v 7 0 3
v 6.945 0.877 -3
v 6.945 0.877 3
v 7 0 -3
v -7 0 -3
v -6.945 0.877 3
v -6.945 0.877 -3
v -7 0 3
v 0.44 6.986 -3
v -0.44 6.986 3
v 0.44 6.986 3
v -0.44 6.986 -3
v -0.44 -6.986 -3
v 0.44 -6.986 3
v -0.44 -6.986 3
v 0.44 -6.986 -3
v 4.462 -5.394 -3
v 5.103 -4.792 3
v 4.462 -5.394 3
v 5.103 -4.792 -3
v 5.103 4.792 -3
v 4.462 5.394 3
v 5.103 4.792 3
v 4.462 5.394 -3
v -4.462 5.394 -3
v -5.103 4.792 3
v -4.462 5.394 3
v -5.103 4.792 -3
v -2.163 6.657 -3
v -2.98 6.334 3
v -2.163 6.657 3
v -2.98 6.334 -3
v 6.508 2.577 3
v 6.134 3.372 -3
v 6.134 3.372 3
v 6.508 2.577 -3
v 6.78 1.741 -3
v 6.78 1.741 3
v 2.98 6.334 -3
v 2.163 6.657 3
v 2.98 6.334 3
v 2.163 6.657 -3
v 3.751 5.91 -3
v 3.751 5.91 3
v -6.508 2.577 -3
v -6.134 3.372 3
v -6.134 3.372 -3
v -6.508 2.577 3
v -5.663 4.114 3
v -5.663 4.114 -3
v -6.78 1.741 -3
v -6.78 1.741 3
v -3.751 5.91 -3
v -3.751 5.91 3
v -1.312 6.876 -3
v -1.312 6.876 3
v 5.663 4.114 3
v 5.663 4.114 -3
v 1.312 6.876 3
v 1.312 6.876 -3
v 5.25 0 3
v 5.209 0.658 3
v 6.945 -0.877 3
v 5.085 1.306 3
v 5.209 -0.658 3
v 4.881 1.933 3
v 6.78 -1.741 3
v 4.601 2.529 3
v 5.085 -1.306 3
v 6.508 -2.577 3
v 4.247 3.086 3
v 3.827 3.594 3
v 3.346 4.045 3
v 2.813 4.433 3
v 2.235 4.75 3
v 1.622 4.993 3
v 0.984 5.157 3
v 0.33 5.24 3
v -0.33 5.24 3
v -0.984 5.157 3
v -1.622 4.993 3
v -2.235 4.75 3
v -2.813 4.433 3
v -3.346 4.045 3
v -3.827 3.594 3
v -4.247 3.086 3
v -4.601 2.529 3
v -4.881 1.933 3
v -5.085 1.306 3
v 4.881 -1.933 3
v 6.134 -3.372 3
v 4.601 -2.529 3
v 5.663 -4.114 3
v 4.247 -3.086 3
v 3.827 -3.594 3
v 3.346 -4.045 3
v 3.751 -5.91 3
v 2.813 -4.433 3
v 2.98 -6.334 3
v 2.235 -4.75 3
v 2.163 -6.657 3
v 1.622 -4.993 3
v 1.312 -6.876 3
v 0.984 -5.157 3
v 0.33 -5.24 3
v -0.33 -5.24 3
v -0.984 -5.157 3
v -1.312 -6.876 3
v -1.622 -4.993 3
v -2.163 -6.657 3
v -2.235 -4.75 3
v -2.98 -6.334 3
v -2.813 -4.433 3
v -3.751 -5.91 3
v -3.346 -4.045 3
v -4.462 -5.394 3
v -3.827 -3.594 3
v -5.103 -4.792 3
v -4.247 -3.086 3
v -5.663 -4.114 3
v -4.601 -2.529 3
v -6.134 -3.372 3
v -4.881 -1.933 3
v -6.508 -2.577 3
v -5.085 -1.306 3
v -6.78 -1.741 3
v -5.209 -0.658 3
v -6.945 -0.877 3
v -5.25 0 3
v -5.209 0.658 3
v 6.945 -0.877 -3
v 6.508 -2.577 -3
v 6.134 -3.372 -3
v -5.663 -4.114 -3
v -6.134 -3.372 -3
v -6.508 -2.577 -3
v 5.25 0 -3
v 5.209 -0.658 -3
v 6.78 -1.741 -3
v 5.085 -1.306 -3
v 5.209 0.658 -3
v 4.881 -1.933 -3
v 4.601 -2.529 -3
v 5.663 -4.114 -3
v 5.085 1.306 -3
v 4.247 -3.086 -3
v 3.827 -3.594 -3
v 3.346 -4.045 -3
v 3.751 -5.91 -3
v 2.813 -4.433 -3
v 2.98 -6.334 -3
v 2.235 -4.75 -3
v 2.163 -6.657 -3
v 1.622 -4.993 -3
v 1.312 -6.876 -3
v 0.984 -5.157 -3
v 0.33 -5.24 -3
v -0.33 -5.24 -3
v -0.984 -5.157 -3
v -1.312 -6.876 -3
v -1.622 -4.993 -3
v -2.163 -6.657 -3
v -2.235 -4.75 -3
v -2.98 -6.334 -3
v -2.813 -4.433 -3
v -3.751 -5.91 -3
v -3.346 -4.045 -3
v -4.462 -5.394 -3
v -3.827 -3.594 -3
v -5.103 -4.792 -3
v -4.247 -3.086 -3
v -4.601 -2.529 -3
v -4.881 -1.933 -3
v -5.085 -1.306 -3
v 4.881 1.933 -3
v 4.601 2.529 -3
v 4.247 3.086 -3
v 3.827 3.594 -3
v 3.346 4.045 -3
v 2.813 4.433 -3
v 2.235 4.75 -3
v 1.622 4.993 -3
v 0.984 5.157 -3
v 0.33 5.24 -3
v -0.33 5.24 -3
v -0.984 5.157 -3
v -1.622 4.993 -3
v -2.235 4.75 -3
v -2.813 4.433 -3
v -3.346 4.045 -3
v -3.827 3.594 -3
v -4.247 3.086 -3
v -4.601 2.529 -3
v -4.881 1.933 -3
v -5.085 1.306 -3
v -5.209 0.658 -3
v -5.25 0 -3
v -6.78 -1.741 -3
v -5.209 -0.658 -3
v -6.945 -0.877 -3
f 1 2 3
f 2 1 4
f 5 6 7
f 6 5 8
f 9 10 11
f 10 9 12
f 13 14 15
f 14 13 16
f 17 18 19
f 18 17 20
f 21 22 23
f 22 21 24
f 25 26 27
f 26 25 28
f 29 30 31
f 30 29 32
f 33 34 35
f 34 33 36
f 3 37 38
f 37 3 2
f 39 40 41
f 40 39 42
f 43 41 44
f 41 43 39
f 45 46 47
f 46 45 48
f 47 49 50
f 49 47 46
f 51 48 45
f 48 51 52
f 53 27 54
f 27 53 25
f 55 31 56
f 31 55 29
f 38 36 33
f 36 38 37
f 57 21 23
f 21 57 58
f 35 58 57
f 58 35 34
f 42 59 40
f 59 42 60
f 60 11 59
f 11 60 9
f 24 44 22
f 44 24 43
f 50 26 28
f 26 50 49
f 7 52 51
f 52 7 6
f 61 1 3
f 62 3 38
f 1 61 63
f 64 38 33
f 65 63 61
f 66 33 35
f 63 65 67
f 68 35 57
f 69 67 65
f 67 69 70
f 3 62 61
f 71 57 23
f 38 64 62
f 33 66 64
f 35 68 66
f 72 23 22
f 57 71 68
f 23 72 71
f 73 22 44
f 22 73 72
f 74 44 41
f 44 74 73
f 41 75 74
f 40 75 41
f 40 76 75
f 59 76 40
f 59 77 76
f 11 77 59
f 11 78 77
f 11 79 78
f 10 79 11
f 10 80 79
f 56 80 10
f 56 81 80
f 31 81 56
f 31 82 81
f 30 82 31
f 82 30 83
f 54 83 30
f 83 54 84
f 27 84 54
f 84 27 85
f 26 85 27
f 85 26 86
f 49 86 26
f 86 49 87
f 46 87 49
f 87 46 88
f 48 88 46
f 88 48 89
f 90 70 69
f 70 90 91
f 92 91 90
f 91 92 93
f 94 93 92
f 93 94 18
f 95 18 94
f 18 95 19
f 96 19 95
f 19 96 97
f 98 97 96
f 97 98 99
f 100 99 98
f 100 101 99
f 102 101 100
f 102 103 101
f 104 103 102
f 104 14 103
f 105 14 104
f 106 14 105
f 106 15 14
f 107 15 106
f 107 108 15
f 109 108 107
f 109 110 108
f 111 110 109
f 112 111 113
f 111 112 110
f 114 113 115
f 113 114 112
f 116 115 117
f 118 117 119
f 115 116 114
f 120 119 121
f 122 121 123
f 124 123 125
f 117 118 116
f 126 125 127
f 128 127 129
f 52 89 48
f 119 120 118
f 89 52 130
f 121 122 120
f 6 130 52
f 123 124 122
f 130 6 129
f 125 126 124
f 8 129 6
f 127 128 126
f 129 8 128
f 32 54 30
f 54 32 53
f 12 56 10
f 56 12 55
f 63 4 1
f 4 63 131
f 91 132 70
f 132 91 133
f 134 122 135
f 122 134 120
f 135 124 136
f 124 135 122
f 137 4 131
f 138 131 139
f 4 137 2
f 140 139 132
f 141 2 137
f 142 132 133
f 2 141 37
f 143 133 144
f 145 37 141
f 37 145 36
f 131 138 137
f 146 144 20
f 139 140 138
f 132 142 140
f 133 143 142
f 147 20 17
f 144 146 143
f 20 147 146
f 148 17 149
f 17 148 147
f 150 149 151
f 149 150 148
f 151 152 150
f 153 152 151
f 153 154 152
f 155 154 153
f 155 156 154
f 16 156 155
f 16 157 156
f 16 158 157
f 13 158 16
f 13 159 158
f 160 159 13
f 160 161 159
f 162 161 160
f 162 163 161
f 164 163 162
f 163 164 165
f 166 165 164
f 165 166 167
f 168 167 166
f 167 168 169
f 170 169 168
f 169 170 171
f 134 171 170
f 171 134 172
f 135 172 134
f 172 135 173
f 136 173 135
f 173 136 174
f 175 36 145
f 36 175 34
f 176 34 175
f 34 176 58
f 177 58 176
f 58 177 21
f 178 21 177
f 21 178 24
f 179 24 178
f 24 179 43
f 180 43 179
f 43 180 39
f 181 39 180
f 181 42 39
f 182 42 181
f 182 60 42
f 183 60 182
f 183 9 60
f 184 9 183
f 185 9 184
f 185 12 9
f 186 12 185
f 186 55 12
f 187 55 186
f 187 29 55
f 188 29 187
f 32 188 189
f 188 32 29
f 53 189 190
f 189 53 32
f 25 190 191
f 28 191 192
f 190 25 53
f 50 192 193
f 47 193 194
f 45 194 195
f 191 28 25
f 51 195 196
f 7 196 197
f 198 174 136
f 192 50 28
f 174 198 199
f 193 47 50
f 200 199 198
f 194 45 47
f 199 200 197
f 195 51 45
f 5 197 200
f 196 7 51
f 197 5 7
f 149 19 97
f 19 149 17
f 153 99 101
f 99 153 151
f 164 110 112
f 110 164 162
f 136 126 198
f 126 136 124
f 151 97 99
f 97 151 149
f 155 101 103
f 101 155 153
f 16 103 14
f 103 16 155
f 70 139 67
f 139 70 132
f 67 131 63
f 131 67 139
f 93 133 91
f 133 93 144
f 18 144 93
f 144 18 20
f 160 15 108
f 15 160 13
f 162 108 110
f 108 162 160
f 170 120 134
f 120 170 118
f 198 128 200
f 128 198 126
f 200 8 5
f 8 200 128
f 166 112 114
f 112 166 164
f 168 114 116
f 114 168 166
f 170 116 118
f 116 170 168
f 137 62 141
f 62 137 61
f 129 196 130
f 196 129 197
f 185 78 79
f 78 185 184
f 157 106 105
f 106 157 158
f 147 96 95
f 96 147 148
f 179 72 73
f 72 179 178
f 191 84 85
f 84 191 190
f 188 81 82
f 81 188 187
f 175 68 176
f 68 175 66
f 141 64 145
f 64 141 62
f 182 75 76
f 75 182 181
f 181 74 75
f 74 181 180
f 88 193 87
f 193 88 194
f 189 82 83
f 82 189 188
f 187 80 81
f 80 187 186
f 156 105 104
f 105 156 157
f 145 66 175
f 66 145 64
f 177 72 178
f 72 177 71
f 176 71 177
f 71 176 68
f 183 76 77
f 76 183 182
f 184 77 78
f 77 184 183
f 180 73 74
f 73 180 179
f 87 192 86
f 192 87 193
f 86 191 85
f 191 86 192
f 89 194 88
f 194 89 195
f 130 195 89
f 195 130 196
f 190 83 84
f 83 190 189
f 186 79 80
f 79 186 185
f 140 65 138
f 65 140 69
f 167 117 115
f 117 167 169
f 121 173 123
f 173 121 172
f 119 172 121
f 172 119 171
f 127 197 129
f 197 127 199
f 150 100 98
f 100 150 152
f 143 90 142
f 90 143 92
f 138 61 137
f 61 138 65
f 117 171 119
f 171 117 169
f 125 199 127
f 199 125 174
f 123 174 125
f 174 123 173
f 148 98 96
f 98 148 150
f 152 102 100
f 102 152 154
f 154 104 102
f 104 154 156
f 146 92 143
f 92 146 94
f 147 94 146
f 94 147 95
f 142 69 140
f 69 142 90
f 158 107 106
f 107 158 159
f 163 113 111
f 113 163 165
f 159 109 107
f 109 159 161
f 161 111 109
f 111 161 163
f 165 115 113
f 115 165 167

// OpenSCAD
$fn = 50;


difference() {
	union() {
		translate(v = [0, 0, -3.0000000000]) {
			cylinder(h = 6, r = 7.0000000000);
		}
	}
	union() {
		translate(v = [0, 0, -100.0000000000]) {
			cylinder(h = 200, r = 5.2500000000);
		}
	}
}
